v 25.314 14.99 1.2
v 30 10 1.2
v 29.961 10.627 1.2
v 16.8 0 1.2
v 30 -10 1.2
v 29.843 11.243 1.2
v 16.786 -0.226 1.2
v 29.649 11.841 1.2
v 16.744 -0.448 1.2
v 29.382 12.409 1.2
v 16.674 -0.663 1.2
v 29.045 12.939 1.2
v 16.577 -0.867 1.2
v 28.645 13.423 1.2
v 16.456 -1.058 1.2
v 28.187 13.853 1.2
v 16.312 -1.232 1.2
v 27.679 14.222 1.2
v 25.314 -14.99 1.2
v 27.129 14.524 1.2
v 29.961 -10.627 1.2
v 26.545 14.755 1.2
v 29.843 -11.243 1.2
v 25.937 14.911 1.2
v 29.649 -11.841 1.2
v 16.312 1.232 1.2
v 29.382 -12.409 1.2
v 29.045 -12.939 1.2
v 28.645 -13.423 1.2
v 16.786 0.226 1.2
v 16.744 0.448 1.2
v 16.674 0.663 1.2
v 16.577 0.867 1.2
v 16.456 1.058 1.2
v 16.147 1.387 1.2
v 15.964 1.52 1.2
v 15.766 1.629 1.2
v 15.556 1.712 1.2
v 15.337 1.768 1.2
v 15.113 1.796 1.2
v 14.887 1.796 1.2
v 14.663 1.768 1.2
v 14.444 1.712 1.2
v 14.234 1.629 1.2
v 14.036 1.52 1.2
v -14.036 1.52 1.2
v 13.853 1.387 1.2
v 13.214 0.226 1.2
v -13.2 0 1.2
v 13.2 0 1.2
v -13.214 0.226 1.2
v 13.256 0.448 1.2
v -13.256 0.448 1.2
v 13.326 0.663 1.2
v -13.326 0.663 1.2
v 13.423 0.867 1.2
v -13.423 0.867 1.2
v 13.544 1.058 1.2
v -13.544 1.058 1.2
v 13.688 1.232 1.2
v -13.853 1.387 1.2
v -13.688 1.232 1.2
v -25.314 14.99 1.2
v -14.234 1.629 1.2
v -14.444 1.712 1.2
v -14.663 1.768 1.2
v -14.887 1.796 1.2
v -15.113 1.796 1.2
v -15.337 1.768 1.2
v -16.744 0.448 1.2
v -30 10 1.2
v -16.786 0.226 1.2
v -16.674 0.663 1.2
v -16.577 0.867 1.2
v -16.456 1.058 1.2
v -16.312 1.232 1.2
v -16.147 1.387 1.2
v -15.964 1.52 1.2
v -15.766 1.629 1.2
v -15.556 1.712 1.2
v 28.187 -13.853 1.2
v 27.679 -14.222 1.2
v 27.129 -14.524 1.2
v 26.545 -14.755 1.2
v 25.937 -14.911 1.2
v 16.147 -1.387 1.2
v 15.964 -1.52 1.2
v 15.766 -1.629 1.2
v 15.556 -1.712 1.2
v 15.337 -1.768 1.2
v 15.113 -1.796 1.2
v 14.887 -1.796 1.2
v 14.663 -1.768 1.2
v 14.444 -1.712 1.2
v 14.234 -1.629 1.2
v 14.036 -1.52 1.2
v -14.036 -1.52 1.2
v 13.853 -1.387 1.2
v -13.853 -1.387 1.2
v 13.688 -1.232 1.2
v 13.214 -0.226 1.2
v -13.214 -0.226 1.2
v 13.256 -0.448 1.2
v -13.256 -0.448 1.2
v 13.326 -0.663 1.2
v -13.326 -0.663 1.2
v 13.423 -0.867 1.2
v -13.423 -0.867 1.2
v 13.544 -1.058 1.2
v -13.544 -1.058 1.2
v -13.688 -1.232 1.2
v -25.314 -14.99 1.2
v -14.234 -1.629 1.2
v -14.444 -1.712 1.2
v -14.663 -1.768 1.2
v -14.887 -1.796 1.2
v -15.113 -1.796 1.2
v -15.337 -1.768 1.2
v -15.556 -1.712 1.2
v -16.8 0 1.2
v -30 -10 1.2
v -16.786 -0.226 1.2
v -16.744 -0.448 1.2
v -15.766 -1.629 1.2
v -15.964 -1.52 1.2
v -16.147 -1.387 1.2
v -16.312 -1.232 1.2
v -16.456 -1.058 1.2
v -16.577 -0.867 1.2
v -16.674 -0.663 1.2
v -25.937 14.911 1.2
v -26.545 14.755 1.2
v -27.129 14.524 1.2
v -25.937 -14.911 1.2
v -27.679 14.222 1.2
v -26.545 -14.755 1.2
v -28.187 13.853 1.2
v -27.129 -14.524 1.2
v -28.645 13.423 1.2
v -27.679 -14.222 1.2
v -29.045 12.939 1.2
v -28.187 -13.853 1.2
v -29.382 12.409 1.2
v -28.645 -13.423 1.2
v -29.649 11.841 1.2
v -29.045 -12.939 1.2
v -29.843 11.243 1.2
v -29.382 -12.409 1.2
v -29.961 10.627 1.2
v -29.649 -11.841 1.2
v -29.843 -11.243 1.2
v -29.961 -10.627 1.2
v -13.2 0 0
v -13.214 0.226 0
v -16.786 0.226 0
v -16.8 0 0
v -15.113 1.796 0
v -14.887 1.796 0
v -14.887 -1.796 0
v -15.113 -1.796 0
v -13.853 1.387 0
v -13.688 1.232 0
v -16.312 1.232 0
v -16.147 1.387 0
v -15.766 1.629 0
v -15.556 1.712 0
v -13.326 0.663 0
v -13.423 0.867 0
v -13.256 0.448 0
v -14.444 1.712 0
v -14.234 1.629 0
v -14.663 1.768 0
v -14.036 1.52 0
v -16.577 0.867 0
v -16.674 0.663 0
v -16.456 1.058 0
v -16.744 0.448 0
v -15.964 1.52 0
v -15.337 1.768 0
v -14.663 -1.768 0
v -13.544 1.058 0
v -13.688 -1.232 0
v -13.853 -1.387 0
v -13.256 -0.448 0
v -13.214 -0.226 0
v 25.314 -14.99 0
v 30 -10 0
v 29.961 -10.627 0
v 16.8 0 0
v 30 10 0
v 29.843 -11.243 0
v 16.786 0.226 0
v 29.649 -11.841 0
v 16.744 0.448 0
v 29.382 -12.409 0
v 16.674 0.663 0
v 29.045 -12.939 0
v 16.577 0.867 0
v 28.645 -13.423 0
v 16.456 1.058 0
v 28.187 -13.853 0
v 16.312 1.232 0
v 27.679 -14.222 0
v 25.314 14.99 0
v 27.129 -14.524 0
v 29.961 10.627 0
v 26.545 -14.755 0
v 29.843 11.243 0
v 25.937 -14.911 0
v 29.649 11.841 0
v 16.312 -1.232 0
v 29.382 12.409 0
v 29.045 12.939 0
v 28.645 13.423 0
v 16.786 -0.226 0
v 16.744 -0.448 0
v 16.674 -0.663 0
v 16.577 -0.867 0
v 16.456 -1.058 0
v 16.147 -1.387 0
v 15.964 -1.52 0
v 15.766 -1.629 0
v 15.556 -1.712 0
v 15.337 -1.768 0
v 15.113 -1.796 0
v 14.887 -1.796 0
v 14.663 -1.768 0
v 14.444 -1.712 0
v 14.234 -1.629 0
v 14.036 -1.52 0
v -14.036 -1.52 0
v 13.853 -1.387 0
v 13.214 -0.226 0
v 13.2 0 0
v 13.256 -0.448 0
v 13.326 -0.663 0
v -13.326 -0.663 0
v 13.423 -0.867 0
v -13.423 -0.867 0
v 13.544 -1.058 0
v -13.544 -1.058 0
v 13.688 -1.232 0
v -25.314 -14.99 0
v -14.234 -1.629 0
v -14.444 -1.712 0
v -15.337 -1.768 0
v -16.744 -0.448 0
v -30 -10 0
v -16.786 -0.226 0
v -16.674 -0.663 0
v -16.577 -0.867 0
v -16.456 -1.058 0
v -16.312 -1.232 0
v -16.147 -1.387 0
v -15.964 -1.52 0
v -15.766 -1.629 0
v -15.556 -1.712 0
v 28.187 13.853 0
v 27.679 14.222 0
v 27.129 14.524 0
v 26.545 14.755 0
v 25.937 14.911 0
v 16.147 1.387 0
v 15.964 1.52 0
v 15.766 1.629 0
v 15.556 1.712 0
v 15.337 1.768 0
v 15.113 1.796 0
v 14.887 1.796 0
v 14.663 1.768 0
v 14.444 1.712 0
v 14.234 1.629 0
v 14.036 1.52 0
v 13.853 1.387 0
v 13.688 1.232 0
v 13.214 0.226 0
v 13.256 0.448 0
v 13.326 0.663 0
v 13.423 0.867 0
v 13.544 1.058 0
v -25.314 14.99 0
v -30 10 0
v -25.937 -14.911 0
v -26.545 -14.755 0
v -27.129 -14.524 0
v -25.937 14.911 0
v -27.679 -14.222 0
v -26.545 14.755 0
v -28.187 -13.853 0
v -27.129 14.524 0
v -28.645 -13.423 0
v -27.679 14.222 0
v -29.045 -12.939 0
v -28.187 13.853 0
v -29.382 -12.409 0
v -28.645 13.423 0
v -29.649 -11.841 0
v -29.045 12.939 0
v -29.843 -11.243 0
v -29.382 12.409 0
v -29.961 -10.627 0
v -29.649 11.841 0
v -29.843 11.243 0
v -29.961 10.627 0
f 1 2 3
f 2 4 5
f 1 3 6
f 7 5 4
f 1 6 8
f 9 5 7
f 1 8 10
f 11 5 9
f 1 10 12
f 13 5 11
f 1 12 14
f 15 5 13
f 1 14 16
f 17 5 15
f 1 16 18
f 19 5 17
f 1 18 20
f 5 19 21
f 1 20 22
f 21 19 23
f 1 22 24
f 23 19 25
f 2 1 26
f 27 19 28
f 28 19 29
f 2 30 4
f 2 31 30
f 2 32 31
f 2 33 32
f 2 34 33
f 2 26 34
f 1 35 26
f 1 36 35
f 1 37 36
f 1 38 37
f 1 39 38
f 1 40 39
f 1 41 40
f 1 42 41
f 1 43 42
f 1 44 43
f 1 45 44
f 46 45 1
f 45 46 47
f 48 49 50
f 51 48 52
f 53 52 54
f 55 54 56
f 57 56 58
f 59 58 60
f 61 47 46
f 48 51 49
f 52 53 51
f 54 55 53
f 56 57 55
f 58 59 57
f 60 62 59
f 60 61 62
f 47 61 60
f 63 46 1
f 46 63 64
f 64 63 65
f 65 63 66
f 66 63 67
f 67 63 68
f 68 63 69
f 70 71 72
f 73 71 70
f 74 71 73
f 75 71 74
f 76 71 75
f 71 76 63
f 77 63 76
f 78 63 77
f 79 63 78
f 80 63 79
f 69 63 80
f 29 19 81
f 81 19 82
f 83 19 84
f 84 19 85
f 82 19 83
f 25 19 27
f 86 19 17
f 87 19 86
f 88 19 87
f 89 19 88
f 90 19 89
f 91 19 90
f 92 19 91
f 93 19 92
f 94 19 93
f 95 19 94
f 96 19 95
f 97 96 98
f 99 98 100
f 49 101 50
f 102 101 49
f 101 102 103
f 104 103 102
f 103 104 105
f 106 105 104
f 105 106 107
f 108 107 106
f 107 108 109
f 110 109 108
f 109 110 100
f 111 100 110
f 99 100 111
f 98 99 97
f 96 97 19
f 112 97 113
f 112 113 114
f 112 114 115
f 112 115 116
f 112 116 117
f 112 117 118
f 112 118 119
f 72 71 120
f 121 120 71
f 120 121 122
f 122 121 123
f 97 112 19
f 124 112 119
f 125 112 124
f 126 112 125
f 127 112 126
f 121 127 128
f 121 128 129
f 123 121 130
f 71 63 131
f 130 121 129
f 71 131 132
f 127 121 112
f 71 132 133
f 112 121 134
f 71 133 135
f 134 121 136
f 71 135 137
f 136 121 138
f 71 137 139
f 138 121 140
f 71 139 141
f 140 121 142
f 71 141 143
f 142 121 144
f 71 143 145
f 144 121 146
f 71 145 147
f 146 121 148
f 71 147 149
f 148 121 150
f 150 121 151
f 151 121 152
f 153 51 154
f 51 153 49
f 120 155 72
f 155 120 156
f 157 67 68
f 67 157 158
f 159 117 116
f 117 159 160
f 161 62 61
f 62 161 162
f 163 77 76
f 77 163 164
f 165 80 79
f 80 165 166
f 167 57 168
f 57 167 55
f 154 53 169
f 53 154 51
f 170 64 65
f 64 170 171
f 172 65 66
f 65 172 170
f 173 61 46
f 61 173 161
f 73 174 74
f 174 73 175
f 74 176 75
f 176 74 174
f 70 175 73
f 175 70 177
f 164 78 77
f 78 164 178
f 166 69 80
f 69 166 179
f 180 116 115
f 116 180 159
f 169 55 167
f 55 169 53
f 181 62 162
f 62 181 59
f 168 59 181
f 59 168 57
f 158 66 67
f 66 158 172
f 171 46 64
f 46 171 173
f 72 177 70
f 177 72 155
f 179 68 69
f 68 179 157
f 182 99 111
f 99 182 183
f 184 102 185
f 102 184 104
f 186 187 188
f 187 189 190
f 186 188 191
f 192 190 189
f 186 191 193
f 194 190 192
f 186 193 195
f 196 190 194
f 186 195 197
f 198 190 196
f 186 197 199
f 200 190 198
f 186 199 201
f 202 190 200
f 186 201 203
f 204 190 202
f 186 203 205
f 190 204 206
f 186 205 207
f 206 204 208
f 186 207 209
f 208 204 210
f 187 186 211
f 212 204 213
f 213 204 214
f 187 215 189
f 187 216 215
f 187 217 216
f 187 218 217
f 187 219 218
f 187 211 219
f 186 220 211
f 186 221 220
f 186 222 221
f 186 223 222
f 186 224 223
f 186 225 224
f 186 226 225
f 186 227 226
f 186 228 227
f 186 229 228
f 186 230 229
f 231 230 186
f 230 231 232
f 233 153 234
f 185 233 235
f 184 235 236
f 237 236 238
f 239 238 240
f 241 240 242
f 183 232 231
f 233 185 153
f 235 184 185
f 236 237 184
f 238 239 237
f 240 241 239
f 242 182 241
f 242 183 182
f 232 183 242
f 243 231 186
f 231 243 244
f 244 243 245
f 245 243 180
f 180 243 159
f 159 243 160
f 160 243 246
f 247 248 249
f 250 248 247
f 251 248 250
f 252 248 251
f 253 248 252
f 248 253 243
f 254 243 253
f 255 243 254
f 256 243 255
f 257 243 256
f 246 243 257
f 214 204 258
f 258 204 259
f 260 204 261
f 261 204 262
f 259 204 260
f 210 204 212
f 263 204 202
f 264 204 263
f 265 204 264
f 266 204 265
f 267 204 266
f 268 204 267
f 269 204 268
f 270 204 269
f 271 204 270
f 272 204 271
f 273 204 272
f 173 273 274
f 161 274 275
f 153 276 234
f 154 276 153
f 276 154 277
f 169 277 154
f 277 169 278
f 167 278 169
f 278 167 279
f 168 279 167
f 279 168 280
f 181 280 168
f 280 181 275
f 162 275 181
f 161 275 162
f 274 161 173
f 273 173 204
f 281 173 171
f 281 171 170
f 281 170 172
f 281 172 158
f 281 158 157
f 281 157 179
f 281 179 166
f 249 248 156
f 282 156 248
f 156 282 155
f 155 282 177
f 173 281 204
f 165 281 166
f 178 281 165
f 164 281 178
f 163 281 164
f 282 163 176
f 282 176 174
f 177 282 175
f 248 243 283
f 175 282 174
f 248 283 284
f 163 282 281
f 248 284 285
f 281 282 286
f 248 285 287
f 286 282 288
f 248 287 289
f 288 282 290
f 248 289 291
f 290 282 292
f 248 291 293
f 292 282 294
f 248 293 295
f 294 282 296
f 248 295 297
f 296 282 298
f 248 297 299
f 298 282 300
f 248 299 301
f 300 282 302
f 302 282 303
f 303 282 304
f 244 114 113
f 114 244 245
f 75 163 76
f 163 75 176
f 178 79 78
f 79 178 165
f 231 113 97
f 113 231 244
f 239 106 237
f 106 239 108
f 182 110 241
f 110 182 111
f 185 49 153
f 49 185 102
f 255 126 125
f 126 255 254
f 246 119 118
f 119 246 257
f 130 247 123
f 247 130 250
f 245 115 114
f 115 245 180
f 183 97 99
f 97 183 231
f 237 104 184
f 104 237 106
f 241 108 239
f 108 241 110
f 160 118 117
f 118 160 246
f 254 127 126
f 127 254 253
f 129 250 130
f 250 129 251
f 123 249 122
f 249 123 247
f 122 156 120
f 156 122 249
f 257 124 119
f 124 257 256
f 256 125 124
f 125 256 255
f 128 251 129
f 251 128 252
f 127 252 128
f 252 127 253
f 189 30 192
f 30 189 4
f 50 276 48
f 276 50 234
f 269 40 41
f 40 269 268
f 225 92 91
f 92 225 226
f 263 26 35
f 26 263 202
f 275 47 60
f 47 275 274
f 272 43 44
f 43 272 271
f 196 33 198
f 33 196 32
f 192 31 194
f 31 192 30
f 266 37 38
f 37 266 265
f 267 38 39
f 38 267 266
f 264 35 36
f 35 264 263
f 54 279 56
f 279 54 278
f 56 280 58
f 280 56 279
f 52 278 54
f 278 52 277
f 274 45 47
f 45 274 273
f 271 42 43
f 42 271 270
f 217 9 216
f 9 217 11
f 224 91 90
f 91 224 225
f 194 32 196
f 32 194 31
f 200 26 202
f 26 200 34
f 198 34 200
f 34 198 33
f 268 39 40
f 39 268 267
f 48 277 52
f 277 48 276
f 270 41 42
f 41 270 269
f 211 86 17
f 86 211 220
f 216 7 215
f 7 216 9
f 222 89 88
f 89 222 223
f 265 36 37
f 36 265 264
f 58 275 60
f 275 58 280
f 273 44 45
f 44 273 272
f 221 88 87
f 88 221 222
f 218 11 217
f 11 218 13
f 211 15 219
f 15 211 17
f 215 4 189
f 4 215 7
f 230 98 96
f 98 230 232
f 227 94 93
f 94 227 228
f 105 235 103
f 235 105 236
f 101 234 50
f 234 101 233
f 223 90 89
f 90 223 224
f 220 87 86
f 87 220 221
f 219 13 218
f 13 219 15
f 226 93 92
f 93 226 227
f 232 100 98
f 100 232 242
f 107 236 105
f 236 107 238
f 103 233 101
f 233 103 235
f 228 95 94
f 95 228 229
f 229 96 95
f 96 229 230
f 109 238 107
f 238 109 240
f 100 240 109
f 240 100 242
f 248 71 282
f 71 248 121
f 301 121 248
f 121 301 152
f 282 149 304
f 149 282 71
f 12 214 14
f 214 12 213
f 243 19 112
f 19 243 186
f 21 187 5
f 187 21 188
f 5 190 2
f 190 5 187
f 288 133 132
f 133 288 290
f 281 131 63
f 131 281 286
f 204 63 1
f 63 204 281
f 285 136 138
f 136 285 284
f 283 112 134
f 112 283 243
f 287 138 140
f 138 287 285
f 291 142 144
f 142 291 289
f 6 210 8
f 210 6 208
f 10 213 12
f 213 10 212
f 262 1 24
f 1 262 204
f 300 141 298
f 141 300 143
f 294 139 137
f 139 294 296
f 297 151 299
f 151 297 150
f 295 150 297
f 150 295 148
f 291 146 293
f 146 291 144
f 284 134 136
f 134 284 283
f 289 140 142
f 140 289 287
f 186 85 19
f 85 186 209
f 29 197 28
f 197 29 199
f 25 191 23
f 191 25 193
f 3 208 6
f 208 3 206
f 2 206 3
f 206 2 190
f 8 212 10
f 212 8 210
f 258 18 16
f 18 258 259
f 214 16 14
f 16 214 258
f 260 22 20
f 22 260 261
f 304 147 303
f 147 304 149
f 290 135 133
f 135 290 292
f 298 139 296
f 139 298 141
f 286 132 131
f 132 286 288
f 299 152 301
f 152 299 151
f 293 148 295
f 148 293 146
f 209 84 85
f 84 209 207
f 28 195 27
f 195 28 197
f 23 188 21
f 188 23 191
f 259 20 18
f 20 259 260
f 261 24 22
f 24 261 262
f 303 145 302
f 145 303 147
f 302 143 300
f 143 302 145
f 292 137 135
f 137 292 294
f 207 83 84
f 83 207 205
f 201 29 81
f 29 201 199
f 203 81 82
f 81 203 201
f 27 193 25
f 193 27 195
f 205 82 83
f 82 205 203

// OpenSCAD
$fn = 50;


difference() {
	union() {
		hull() {
			translate(v = [-25.0000000000, 10.0000000000, 0]) {
				cylinder(h = 18, r = 5);
			}
			translate(v = [25.0000000000, 10.0000000000, 0]) {
				cylinder(h = 18, r = 5);
			}
			translate(v = [-25.0000000000, -10.0000000000, 0]) {
				cylinder(h = 18, r = 5);
			}
			translate(v = [25.0000000000, -10.0000000000, 0]) {
				cylinder(h = 18, r = 5);
			}
		}
	}
	union() {
		translate(v = [0, 0, 1.2000000000]) {
			hull() {
				translate(v = [-25.0000000000, 10.0000000000, 0]) {
					cylinder(h = 16.8000000000, r = 3.8000000000);
				}
				translate(v = [25.0000000000, 10.0000000000, 0]) {
					cylinder(h = 16.8000000000, r = 3.8000000000);
				}
				translate(v = [-25.0000000000, -10.0000000000, 0]) {
					cylinder(h = 16.8000000000, r = 3.8000000000);
				}
				translate(v = [25.0000000000, -10.0000000000, 0]) {
					cylinder(h = 16.8000000000, r = 3.8000000000);
				}
			}
		}
		#translate(v = [-15.0000000000, 0.0000000000, 0]) {
			cylinder(h = 1.2000000000, r = 1.8000000000);
		}
		#translate(v = [15.0000000000, 0.0000000000, 0]) {
			cylinder(h = 1.2000000000, r = 1.8000000000);
		}
		translate(v = [-250.0000000000, -250.0000000000, 1.2000000000]) {
			cube(size = [500, 500, 500]);
		}
		translate(v = [-250.0000000000, -250.0000000000, 1.2000000000]) {
			cube(size = [500, 500, 500]);
		}
		translate(v = [-250.0000000000, -250.0000000000, 1.2000000000]) {
			cube(size = [500, 500, 500]);
		}
	}
}
